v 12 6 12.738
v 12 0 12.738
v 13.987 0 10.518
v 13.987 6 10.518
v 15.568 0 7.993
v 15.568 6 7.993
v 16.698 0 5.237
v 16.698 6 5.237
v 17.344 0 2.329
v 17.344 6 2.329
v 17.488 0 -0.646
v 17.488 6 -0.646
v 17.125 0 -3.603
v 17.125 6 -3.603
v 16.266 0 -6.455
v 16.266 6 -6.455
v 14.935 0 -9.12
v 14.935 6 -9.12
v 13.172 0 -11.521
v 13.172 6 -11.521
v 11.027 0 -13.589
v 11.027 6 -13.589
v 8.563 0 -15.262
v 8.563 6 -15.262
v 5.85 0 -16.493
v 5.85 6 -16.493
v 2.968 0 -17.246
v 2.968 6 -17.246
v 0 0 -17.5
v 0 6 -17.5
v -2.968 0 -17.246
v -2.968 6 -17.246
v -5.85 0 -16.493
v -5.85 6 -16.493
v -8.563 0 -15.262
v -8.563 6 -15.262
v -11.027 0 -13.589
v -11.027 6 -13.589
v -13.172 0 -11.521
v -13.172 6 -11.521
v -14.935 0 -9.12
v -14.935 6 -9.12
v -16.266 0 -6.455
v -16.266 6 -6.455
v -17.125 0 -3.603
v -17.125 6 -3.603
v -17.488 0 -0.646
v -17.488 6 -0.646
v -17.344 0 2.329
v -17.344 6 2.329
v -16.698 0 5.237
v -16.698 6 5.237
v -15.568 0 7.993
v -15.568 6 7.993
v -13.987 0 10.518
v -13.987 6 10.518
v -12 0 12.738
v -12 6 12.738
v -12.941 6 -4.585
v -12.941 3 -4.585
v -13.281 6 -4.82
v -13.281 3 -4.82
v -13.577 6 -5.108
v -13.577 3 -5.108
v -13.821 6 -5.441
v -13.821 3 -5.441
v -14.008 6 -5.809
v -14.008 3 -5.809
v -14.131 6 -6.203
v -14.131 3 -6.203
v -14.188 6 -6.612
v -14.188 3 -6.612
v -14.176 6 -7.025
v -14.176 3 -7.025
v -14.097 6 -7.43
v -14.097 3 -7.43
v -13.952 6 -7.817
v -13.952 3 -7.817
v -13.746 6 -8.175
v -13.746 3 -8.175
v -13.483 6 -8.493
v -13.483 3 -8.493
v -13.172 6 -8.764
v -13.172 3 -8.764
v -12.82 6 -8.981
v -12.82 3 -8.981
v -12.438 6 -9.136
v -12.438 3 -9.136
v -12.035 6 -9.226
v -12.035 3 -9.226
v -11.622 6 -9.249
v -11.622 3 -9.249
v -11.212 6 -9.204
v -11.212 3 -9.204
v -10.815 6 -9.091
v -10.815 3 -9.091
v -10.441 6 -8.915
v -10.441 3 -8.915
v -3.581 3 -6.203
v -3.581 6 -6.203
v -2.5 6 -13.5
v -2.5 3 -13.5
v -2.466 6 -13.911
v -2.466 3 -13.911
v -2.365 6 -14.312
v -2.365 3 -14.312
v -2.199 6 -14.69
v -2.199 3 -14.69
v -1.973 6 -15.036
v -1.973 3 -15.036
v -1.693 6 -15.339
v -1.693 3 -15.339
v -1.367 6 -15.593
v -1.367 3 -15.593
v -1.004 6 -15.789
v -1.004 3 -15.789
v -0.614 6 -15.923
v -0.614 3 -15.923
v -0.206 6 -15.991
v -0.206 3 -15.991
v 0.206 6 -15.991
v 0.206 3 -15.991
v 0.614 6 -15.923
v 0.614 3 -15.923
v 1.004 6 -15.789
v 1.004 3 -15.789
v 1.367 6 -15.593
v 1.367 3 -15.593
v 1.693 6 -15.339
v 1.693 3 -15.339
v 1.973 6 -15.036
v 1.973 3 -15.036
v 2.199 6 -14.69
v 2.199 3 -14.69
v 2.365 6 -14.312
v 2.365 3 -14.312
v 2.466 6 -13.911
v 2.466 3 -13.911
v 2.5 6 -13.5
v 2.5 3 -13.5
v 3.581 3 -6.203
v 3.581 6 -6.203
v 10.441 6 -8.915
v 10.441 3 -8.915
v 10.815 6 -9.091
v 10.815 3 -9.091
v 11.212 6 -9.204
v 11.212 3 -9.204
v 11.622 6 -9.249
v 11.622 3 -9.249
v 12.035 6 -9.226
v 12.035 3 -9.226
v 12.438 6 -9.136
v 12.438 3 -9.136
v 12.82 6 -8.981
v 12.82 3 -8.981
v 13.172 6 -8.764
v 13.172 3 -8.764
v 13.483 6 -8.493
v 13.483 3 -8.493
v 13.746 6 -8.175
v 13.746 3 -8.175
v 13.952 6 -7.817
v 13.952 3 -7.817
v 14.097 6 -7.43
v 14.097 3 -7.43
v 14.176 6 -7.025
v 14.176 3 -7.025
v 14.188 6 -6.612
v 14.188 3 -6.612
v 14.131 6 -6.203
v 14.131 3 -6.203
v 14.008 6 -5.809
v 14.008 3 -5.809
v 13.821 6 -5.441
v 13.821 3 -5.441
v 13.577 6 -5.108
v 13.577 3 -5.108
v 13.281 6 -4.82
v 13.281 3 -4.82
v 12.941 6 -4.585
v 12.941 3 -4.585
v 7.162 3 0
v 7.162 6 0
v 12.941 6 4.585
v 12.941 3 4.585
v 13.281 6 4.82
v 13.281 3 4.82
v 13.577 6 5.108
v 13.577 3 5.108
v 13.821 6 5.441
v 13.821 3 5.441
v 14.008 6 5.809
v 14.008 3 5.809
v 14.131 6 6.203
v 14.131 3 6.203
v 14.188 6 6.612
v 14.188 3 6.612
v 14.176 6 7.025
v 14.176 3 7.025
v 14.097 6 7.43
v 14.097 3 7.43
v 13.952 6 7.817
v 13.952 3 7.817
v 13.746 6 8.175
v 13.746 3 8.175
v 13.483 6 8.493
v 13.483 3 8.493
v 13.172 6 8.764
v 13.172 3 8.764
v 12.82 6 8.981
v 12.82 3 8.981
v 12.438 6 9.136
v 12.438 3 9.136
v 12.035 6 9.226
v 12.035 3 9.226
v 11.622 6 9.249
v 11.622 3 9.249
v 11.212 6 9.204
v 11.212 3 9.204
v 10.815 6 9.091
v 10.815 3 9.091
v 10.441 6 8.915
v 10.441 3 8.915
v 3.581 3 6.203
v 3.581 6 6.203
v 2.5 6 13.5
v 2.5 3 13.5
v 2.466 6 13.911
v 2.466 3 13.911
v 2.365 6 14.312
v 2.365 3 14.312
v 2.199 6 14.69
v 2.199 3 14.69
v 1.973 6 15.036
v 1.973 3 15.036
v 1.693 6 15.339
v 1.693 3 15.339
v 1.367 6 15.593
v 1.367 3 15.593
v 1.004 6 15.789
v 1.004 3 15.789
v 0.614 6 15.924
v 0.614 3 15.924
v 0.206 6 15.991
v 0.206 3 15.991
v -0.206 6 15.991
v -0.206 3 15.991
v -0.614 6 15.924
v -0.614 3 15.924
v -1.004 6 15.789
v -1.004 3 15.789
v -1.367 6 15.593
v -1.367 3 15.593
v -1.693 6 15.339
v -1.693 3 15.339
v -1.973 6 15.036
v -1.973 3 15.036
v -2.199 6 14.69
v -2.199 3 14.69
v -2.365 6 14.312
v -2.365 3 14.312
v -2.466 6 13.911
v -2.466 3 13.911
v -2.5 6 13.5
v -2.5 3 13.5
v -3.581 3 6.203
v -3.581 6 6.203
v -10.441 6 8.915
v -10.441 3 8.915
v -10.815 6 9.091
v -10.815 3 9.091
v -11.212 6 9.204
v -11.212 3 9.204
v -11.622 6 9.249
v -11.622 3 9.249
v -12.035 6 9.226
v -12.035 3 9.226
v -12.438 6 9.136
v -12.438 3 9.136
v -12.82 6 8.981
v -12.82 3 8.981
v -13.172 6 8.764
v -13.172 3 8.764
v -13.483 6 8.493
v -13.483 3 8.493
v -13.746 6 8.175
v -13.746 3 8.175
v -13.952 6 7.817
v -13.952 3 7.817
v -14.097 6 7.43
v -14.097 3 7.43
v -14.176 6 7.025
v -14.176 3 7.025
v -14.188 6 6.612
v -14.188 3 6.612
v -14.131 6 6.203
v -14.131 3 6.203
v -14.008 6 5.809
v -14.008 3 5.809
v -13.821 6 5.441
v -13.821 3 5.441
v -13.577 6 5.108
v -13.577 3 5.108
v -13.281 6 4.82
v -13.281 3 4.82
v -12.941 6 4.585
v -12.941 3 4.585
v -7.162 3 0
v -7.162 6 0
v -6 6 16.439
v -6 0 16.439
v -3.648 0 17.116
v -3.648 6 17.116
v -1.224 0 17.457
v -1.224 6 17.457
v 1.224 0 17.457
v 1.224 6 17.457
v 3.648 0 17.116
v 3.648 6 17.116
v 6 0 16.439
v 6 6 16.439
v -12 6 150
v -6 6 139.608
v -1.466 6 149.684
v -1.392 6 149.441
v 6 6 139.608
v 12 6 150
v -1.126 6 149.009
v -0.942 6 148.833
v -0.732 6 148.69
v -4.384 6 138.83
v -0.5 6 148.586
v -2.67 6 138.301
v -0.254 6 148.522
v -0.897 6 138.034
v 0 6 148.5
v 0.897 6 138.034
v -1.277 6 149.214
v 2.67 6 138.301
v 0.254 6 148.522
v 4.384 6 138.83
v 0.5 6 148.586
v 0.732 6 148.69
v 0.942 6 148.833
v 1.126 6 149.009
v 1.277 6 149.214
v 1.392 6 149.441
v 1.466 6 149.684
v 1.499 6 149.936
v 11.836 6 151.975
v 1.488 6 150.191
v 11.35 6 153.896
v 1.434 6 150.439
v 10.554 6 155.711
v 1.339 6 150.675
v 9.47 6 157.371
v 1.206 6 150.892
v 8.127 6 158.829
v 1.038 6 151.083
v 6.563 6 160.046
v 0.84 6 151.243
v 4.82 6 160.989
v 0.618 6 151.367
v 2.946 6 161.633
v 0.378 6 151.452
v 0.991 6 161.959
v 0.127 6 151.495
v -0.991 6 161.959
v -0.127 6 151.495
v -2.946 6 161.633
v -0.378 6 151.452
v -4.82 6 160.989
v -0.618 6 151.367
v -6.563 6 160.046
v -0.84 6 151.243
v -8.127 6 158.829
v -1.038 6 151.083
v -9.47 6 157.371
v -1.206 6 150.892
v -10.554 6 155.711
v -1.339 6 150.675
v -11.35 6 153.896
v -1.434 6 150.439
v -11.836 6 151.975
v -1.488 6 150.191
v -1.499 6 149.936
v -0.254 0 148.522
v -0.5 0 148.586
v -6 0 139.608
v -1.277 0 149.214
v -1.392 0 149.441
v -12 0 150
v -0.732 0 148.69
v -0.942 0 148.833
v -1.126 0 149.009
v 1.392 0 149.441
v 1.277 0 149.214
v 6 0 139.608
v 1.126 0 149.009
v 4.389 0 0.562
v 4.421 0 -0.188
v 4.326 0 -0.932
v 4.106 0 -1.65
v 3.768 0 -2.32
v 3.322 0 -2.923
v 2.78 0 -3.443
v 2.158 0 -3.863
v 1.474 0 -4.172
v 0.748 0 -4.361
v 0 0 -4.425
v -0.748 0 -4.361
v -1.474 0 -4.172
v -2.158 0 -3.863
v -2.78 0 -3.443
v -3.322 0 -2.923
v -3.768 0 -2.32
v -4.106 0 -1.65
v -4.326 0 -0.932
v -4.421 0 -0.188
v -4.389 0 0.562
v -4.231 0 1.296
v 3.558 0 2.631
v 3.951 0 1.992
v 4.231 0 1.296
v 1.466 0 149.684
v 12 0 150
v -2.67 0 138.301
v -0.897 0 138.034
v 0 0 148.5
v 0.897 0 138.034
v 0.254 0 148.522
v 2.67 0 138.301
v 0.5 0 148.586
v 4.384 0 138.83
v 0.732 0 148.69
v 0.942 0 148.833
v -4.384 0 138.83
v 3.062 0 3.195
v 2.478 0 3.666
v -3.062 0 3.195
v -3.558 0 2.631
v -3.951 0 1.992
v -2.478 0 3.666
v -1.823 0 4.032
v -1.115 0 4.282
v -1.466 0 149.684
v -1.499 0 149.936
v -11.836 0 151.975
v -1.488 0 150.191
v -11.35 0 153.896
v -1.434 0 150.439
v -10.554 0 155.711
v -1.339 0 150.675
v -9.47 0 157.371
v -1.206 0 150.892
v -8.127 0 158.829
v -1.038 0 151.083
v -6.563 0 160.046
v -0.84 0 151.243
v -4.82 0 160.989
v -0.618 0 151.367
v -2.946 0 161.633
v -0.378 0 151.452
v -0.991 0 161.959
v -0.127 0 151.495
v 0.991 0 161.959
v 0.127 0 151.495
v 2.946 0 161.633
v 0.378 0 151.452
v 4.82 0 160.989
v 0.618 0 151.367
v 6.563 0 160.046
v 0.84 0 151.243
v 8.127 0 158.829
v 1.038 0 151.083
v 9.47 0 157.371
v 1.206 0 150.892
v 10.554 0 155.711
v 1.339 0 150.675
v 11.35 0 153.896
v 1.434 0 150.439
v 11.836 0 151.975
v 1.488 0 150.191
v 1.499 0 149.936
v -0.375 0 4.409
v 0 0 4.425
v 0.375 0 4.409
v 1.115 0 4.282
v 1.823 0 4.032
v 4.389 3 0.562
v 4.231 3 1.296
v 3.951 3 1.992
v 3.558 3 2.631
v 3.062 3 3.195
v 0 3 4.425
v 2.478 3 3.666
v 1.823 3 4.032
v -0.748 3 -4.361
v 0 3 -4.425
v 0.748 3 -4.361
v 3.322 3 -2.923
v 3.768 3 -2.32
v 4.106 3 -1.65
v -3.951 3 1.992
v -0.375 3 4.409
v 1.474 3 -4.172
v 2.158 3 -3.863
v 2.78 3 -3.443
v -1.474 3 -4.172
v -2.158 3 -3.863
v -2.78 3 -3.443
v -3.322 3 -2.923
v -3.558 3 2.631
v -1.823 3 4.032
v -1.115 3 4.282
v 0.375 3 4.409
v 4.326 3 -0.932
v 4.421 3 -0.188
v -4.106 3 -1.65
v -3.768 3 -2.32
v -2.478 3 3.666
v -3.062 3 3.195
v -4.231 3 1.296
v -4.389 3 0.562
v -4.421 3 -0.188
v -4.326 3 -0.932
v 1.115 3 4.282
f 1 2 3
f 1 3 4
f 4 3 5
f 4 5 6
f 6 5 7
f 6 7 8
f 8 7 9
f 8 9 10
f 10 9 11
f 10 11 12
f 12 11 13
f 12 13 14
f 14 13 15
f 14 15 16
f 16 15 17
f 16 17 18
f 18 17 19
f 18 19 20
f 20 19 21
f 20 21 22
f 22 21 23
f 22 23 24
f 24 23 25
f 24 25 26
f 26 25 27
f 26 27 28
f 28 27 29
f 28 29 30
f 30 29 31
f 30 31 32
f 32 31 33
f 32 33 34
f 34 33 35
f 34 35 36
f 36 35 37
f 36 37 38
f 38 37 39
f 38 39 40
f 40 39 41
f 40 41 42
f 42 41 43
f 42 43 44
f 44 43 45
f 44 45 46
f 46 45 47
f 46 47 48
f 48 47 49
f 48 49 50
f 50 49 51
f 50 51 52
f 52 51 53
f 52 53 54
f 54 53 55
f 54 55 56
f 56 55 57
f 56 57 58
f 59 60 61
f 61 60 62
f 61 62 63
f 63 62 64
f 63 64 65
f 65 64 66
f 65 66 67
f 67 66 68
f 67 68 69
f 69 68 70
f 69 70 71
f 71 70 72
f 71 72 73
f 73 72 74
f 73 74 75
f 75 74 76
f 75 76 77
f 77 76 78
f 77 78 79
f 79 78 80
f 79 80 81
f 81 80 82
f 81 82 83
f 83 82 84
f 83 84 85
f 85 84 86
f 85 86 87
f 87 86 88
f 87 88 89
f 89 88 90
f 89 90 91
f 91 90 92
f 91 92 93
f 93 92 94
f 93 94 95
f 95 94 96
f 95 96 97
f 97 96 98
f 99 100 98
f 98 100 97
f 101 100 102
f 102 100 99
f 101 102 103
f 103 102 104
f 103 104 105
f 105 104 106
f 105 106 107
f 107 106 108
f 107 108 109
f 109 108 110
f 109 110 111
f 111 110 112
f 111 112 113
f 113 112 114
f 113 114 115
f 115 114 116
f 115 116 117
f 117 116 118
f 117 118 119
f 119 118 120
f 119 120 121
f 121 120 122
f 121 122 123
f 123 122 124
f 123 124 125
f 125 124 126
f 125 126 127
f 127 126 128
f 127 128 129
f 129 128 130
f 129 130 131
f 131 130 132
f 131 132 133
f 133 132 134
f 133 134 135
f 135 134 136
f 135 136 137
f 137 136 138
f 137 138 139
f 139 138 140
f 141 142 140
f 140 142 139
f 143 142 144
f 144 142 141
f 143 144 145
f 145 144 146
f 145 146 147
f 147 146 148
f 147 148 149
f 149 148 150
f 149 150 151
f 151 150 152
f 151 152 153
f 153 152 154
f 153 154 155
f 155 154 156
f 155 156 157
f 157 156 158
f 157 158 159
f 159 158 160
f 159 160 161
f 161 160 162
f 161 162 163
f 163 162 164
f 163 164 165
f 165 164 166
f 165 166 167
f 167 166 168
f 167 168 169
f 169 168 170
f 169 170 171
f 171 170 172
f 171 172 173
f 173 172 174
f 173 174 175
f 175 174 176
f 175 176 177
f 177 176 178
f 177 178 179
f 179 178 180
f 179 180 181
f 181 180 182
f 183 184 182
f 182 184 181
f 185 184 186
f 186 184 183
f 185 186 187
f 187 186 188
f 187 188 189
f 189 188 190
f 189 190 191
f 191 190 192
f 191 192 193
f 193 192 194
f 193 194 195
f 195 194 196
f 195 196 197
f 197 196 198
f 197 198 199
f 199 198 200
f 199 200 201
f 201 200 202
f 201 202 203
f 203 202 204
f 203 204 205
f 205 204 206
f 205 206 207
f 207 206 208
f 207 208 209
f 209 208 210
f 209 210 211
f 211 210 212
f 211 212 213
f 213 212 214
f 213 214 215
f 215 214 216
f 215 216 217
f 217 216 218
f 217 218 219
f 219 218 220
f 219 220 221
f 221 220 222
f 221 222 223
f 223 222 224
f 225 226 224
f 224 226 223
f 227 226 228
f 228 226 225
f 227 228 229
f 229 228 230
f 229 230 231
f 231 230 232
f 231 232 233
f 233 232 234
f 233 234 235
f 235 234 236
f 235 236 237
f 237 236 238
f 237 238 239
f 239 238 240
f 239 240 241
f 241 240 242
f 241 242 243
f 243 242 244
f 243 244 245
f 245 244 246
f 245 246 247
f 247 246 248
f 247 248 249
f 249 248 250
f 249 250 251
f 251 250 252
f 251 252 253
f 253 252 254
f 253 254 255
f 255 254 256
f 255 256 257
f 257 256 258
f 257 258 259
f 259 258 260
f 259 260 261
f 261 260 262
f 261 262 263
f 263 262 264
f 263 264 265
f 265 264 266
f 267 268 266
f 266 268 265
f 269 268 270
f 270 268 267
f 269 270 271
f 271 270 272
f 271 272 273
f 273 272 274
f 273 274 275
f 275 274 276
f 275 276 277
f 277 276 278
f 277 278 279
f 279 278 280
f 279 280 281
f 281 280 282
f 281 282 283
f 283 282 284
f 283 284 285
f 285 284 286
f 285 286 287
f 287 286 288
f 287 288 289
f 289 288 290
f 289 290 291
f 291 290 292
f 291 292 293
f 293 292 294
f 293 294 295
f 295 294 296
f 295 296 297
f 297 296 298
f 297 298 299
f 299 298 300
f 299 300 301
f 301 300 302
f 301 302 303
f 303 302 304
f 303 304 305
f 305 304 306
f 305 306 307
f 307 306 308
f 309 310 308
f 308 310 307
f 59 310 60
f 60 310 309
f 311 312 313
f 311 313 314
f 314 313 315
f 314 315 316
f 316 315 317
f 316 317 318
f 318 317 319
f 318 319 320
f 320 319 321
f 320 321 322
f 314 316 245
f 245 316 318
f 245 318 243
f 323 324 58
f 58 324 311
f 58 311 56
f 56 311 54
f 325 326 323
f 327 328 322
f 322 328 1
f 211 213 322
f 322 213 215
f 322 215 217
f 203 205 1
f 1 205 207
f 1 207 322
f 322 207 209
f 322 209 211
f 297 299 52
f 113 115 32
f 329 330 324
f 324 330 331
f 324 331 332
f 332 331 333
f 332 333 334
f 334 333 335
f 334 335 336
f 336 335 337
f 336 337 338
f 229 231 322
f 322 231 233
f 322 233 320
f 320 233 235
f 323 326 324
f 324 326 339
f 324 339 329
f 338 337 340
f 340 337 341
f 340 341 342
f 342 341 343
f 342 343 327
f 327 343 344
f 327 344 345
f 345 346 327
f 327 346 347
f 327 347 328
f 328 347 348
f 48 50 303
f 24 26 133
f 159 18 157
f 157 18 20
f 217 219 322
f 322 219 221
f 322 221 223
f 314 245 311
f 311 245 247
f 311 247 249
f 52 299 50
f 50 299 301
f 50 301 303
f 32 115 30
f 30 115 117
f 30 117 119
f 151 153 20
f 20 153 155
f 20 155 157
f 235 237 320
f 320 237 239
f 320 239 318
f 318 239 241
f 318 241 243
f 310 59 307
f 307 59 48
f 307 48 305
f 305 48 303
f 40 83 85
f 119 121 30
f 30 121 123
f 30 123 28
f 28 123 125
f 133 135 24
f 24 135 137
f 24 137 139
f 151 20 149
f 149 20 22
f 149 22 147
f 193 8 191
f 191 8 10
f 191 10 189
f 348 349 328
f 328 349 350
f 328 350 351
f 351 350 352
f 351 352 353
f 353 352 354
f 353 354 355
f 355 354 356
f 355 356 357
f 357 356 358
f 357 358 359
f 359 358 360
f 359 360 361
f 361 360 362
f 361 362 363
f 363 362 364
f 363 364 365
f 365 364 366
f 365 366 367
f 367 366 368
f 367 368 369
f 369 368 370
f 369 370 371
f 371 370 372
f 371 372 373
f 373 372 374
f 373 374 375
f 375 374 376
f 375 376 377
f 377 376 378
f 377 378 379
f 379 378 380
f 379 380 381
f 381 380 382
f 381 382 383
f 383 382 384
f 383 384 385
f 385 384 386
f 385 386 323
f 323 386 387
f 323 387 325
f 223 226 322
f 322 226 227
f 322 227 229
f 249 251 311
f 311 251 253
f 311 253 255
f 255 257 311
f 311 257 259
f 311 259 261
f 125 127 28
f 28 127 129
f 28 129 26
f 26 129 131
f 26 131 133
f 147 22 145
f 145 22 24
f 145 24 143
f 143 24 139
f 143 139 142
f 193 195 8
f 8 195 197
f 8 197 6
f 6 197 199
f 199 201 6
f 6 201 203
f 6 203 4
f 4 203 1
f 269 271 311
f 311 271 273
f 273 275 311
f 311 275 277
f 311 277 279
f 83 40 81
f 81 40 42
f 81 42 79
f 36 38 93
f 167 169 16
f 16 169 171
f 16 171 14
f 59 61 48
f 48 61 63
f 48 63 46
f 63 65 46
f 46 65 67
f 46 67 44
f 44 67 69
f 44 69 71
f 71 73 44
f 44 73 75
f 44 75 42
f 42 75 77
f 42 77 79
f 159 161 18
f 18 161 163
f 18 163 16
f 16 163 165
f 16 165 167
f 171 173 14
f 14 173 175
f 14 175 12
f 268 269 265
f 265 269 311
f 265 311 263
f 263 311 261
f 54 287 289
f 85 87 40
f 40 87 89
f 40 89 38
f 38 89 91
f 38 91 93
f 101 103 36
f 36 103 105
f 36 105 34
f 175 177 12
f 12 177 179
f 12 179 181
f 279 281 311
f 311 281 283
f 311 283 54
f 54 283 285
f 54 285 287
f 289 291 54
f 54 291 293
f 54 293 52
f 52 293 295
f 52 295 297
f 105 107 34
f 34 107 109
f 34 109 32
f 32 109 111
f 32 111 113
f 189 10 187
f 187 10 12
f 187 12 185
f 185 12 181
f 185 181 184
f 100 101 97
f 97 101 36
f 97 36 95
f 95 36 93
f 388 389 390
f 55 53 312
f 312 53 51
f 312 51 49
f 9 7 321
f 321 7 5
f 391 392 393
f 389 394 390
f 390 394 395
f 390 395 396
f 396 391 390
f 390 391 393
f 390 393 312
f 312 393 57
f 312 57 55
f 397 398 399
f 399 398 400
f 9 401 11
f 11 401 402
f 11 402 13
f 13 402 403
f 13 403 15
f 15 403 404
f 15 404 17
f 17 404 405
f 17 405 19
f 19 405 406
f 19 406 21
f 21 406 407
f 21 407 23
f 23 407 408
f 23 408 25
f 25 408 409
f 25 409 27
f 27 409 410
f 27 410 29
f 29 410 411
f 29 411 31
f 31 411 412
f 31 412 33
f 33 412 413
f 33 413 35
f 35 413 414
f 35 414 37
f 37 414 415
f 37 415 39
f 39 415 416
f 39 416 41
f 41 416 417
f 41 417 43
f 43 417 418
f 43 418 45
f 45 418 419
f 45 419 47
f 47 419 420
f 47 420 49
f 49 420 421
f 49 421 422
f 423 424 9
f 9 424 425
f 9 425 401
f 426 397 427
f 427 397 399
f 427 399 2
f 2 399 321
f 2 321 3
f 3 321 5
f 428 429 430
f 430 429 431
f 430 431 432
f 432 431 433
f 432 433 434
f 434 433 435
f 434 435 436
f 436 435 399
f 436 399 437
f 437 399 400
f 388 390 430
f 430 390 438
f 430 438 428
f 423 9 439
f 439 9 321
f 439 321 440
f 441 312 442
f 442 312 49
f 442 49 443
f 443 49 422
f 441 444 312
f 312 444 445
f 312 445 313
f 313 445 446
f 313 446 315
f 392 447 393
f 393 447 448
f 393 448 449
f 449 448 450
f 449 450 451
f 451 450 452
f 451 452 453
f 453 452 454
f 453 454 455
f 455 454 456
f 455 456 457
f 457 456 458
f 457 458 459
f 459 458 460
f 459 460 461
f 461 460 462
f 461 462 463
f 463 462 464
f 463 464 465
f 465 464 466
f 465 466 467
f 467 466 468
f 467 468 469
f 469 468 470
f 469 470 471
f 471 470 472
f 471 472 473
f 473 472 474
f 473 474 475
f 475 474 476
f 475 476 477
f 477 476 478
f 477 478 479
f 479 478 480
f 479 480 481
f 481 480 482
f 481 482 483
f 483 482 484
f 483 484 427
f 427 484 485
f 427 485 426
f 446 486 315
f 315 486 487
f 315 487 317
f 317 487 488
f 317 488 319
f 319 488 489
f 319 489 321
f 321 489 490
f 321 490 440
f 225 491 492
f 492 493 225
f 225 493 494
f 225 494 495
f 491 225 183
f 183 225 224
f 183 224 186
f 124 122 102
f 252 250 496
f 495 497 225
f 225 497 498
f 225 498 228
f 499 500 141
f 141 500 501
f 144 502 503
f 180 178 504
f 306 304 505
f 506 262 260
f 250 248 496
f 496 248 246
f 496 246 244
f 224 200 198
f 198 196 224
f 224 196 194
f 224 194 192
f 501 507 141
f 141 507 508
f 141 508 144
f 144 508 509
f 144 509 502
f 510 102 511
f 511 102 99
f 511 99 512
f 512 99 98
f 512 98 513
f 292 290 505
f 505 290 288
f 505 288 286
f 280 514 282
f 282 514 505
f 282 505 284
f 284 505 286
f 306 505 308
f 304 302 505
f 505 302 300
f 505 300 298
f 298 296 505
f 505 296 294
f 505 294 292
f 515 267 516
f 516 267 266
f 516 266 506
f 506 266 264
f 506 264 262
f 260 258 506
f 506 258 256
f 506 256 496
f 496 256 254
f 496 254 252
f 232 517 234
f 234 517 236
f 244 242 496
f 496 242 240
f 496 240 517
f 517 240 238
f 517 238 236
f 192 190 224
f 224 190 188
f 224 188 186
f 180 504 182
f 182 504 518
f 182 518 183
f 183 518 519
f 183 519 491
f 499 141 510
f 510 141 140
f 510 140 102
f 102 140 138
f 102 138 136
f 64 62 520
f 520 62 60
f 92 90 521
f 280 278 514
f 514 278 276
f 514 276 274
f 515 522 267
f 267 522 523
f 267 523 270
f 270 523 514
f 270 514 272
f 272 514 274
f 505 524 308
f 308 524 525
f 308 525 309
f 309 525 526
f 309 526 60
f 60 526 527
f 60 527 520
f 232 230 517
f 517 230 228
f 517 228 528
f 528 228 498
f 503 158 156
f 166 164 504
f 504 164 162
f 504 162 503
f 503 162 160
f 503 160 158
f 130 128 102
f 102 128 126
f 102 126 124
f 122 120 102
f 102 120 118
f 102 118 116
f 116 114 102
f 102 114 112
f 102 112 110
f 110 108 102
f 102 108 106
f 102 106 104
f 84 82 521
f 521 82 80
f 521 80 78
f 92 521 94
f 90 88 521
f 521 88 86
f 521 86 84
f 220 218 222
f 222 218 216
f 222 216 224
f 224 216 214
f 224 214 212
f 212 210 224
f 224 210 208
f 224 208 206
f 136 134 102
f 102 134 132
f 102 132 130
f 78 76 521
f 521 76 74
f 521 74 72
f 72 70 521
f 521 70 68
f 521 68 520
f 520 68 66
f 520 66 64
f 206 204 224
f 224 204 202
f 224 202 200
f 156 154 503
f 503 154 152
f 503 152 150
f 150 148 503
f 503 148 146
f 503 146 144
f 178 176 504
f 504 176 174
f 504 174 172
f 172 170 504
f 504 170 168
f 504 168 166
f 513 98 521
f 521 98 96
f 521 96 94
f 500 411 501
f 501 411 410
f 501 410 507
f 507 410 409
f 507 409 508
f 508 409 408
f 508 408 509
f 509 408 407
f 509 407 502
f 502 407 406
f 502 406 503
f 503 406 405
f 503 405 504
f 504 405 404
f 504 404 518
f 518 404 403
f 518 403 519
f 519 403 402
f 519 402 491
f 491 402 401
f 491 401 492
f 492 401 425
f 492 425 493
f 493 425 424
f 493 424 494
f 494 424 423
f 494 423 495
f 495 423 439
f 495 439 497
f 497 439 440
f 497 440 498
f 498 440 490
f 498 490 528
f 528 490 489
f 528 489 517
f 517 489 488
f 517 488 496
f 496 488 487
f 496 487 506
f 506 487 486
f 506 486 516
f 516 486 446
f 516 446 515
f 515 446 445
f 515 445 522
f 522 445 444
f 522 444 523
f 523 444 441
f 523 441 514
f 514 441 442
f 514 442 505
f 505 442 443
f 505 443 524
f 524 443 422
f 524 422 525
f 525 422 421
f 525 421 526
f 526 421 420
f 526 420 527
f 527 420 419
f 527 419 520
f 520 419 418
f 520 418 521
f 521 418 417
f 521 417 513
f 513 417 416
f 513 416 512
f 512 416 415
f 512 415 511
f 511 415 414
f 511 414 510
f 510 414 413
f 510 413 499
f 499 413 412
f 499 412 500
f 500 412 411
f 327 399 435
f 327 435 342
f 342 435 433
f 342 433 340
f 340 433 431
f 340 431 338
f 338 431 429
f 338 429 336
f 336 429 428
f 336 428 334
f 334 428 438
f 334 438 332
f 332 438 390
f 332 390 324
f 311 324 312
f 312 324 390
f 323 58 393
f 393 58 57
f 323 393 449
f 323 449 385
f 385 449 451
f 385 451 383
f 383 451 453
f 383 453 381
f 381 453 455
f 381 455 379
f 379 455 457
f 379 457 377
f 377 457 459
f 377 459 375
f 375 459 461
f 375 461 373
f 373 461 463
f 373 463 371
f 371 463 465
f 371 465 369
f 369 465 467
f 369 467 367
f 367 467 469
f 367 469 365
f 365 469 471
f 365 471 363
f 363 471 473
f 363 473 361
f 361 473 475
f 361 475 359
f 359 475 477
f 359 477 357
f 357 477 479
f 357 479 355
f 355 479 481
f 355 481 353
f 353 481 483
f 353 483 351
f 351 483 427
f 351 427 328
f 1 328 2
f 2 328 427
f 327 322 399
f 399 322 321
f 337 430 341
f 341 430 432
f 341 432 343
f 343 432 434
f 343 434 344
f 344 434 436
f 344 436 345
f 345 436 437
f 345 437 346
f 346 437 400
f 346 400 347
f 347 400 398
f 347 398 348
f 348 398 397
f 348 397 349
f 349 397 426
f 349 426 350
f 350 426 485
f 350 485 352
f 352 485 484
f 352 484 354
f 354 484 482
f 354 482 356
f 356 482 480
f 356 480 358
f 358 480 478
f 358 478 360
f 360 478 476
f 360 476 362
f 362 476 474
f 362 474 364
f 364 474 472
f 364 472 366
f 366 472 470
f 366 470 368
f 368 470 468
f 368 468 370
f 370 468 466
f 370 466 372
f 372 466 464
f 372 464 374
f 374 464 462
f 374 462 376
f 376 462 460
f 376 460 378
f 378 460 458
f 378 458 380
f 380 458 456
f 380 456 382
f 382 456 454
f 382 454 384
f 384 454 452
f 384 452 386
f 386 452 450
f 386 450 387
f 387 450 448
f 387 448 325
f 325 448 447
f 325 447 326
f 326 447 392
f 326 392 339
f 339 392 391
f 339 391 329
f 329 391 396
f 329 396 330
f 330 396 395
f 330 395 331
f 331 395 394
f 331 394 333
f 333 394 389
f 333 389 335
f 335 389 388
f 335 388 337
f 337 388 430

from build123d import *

# Parameters (mm, degrees)
SKETCH1_R           = 17.5
BOSS_EXTRUDE3_DEPTH = 6
BOSS_EXTRUDE5_DEPTH = 3
SKETCH2_R           = 1.5
BOSS_EXTRUDE6_DEPTH = 6


with BuildPart() as part:
    # Sketch1 → Boss-Extrude3 (new body)
    with BuildSketch(Plane(origin=(0, 0, 0), x_dir=(1, 0, 0), z_dir=(0, 1, 0))):
        with Locations(Location((0, 0, 0), (0, 0, 270))):
            Circle(SKETCH1_R)
        with BuildLine():
            ThreePointArc((-2.5, 13.5), (-1.767766953, 15.267766953), (0, 16))
            ThreePointArc((0, 16), (1.767766953, 15.267766953), (2.5, 13.5))
            Line((2.5, 13.5), (3.581091494, 6.202632414))
            Line((3.581091494, 6.202632414), (10.441342951, 8.915063509))
            ThreePointArc((10.441342951, 8.915063509), (12.338390564, 9.164814566), (13.856406461, 8))
            ThreePointArc((13.856406461, 8), (14.106157517, 7.397047613), (14.191342951, 6.75))
            ThreePointArc((14.191342951, 6.75), (13.856406461, 5.5), (12.941342951, 4.584936491))
            Line((12.941342951, 4.584936491), (7.162182988, 0))
            Line((7.162182988, 0), (12.941342951, -4.584936491))
            ThreePointArc((12.941342951, -4.584936491), (13.856406461, -5.5), (14.191342951, -6.75))
            ThreePointArc((14.191342951, -6.75), (14.106157517, -7.397047613), (13.856406461, -8))
            ThreePointArc((13.856406461, -8), (12.338390564, -9.164814566), (10.441342951, -8.915063509))
            Line((10.441342951, -8.915063509), (3.581091494, -6.202632414))
            Line((3.581091494, -6.202632414), (2.5, -13.5))
            ThreePointArc((2.5, -13.5), (1.767766953, -15.267766953), (0, -16))
            ThreePointArc((0, -16), (-1.767766953, -15.267766953), (-2.5, -13.5))
            Line((-2.5, -13.5), (-3.581091494, -6.202632414))
            Line((-3.581091494, -6.202632414), (-10.441342951, -8.915063509))
            ThreePointArc((-10.441342951, -8.915063509), (-12.338390564, -9.164814566), (-13.856406461, -8))
            ThreePointArc((-13.856406461, -8), (-14.106157517, -6.102952387), (-12.941342951, -4.584936491))
            Line((-12.941342951, -4.584936491), (-7.162182988, 0))
            Line((-7.162182988, 0), (-12.941342951, 4.584936491))
            ThreePointArc((-12.941342951, 4.584936491), (-14.106157517, 6.102952387), (-13.856406461, 8))
            ThreePointArc((-13.856406461, 8), (-12.338390564, 9.164814566), (-10.441342951, 8.915063509))
            Line((-10.441342951, 8.915063509), (-3.581091494, 6.202632414))
            Line((-3.581091494, 6.202632414), (-2.5, 13.5))
        make_face(mode=Mode.SUBTRACT)
    extrude(amount=BOSS_EXTRUDE3_DEPTH)

    # Sketch1<11> → Boss-Extrude5 (add)
    with BuildSketch(Plane(origin=(0, 0, 0), x_dir=(1, 0, 0), z_dir=(0, 1, 0))):
        with BuildLine():
            ThreePointArc((-9.191342951, 6.75), (-9.526279442, 8), (-10.441342951, 8.915063509))
            Line((-10.441342951, 8.915063509), (-11.691342951, 6.75))
            Line((-11.691342951, 6.75), (-9.526279442, 5.5))
            ThreePointArc((-9.526279442, 5.5), (-9.276528385, 6.102952387), (-9.191342951, 6.75))
        make_face()
        with BuildLine():
            Line((-11.691342951, 6.75), (-10.441342951, 8.915063509))
            ThreePointArc((-10.441342951, 8.915063509), (-12.338390564, 9.164814566), (-13.856406461, 8))
            Line((-13.856406461, 8), (-11.691342951, 6.75))
        make_face()
        with BuildLine():
            ThreePointArc((-12.941342951, 4.584936491), (-11.044295338, 4.335185434), (-9.526279442, 5.5))
            Line((-9.526279442, 5.5), (-11.691342951, 6.75))
            Line((-11.691342951, 6.75), (-12.941342951, 4.584936491))
        make_face()
        with BuildLine():
            Line((-12.941342951, 4.584936491), (-11.691342951, 6.75))
            Line((-11.691342951, 6.75), (-13.856406461, 8))
            ThreePointArc((-13.856406461, 8), (-14.106157517, 6.102952387), (-12.941342951, 4.584936491))
        make_face()
        with BuildLine():
            Line((-4.145427594, 2.393363738), (-3.581091494, 6.202632414))
            Line((-3.581091494, 6.202632414), (-10.441342951, 8.915063509))
            ThreePointArc((-10.441342951, 8.915063509), (-9.526279442, 8), (-9.191342951, 6.75))
            ThreePointArc((-9.191342951, 6.75), (-9.276528385, 6.102952387), (-9.526279442, 5.5))
            Line((-9.526279442, 5.5), (-4.145427594, 2.393363738))
        make_face()
        with BuildLine():
            Line((-7.162182988, 0), (-4.145427594, 2.393363738))
            Line((-4.145427594, 2.393363738), (-9.526279442, 5.5))
            ThreePointArc((-9.526279442, 5.5), (-11.044295338, 4.335185434), (-12.941342951, 4.584936491))
            Line((-12.941342951, 4.584936491), (-7.162182988, 0))
        make_face()
        Polygon((-2.25, 3.897114317), (0, 4.786727475), (-3.581091494, 6.202632414), (-4.145427594, 2.393363738), align=None)
        with BuildLine():
            Line((-3.832162412, 2.2125), (-4.145427594, 2.393363738))
            Line((-4.145427594, 2.393363738), (-4.5, 0))
            Line((-4.5, 0), (-4.145427594, -2.393363738))
            Line((-4.145427594, -2.393363738), (-3.832162412, -2.2125))
            ThreePointArc((-3.832162412, -2.2125), (-4.425, 0), (-3.832162412, 2.2125))
        make_face()
        with BuildLine():
            Line((0, 4.425), (0, 4.786727475))
            Line((0, 4.786727475), (-2.25, 3.897114317))
            Line((-2.25, 3.897114317), (-4.145427594, 2.393363738))
            Line((-4.145427594, 2.393363738), (-3.832162412, 2.2125))
            ThreePointArc((-3.832162412, 2.2125), (-2.2125, 3.832162412), (0, 4.425))
        make_face()
        Polygon((-4.5, 0), (-4.145427594, 2.393363738), (-7.162182988, 0), (-4.145427594, -2.393363738), align=None)
        with BuildLine():
            Line((-4.145427594, -2.393363738), (-7.162182988, 0))
            Line((-7.162182988, 0), (-12.941342951, -4.584936491))
            ThreePointArc((-12.941342951, -4.584936491), (-11.044295338, -4.335185434), (-9.526279442, -5.5))
            Line((-9.526279442, -5.5), (-4.145427594, -2.393363738))
        make_face()
        with BuildLine():
            ThreePointArc((-9.526279442, -5.5), (-11.044295338, -4.335185434), (-12.941342951, -4.584936491))
            Line((-12.941342951, -4.584936491), (-11.691342951, -6.75))
            Line((-11.691342951, -6.75), (-9.526279442, -5.5))
        make_face()
        with BuildLine():
            Line((-11.691342951, -6.75), (-12.941342951, -4.584936491))
            ThreePointArc((-12.941342951, -4.584936491), (-14.106157517, -6.102952387), (-13.856406461, -8))
            Line((-13.856406461, -8), (-11.691342951, -6.75))
        make_face()
        with BuildLine():
            ThreePointArc((-9.191342951, -6.75), (-9.276528385, -6.102952387), (-9.526279442, -5.5))
            Line((-9.526279442, -5.5), (-11.691342951, -6.75))
            Line((-11.691342951, -6.75), (-10.441342951, -8.915063509))
            ThreePointArc((-10.441342951, -8.915063509), (-9.526279442, -8), (-9.191342951, -6.75))
        make_face()
        with BuildLine():
            Line((-10.441342951, -8.915063509), (-11.691342951, -6.75))
            Line((-11.691342951, -6.75), (-13.856406461, -8))
            ThreePointArc((-13.856406461, -8), (-12.338390564, -9.164814566), (-10.441342951, -8.915063509))
        make_face()
        with BuildLine():
            Line((-3.581091494, -6.202632414), (-4.145427594, -2.393363738))
            Line((-4.145427594, -2.393363738), (-9.526279442, -5.5))
            ThreePointArc((-9.526279442, -5.5), (-9.276528385, -6.102952387), (-9.191342951, -6.75))
            ThreePointArc((-9.191342951, -6.75), (-9.526279442, -8), (-10.441342951, -8.915063509))
            Line((-10.441342951, -8.915063509), (-3.581091494, -6.202632414))
        make_face()
        with BuildLine():
            Line((0, -4.786727475), (0, -4.425))
            ThreePointArc((0, -4.425), (-2.2125, -3.832162412), (-3.832162412, -2.2125))
            Line((-3.832162412, -2.2125), (-4.145427594, -2.393363738))
            Line((-4.145427594, -2.393363738), (-2.25, -3.897114317))
            Line((-2.25, -3.897114317), (0, -4.786727475))
        make_face()
        Polygon((-2.25, -3.897114317), (-4.145427594, -2.393363738), (-3.581091494, -6.202632414), (0, -4.786727475), align=None)
        with BuildLine():
            Line((0, -11), (0, -4.786727475))
            Line((0, -4.786727475), (-3.581091494, -6.202632414))
            Line((-3.581091494, -6.202632414), (-2.5, -13.5))
            ThreePointArc((-2.5, -13.5), (-1.767766953, -11.732233047), (0, -11))
        make_face()
        with BuildLine():
            Line((3.581091494, -6.202632414), (0, -4.786727475))
            Line((0, -4.786727475), (0, -11))
            ThreePointArc((0, -11), (1.767766953, -11.732233047), (2.5, -13.5))
            Line((2.5, -13.5), (3.581091494, -6.202632414))
        make_face()
        with BuildLine():
            Line((4.145427594, -2.393363738), (3.832162412, -2.2125))
            ThreePointArc((3.832162412, -2.2125), (2.2125, -3.832162412), (0, -4.425))
            Line((0, -4.425), (0, -4.786727475))
            Line((0, -4.786727475), (2.25, -3.897114317))
            Line((2.25, -3.897114317), (4.145427594, -2.393363738))
        make_face()
        Polygon((3.581091494, -6.202632414), (4.145427594, -2.393363738), (2.25, -3.897114317), (0, -4.786727475), align=None)
        with BuildLine():
            Line((0, -13.5), (0, -11))
            ThreePointArc((0, -11), (-1.767766953, -11.732233047), (-2.5, -13.5))
            Line((-2.5, -13.5), (0, -13.5))
        make_face()
        with BuildLine():
            Line((0, -13.5), (-2.5, -13.5))
            ThreePointArc((-2.5, -13.5), (-1.767766953, -15.267766953), (0, -16))
            Line((0, -16), (0, -13.5))
        make_face()
        with BuildLine():
            ThreePointArc((2.5, -13.5), (1.767766953, -11.732233047), (0, -11))
            Line((0, -11), (0, -13.5))
            Line((0, -13.5), (2.5, -13.5))
        make_face()
        with BuildLine():
            ThreePointArc((0, -16), (1.767766953, -15.267766953), (2.5, -13.5))
            Line((2.5, -13.5), (0, -13.5))
            Line((0, -13.5), (0, -16))
        make_face()
        with BuildLine():
            Line((9.526279442, -5.5), (4.145427594, -2.393363738))
            Line((4.145427594, -2.393363738), (3.581091494, -6.202632414))
            Line((3.581091494, -6.202632414), (10.441342951, -8.915063509))
            ThreePointArc((10.441342951, -8.915063509), (9.276528385, -7.397047613), (9.526279442, -5.5))
        make_face()
        with BuildLine():
            Line((11.691342951, -6.75), (9.526279442, -5.5))
            ThreePointArc((9.526279442, -5.5), (9.276528385, -7.397047613), (10.441342951, -8.915063509))
            Line((10.441342951, -8.915063509), (11.691342951, -6.75))
        make_face()
        with BuildLine():
            Line((13.856406461, -8), (11.691342951, -6.75))
            Line((11.691342951, -6.75), (10.441342951, -8.915063509))
            ThreePointArc((10.441342951, -8.915063509), (12.338390564, -9.164814566), (13.856406461, -8))
        make_face()
        with BuildLine():
            ThreePointArc((14.191342951, -6.75), (13.856406461, -5.5), (12.941342951, -4.584936491))
            Line((12.941342951, -4.584936491), (11.691342951, -6.75))
            Line((11.691342951, -6.75), (13.856406461, -8))
            ThreePointArc((13.856406461, -8), (14.106157517, -7.397047613), (14.191342951, -6.75))
        make_face()
        with BuildLine():
            Line((11.691342951, -6.75), (12.941342951, -4.584936491))
            ThreePointArc((12.941342951, -4.584936491), (11.044295338, -4.335185434), (9.526279442, -5.5))
            Line((9.526279442, -5.5), (11.691342951, -6.75))
        make_face()
        with BuildLine():
            Line((12.941342951, -4.584936491), (7.162182988, 0))
            Line((7.162182988, 0), (4.145427594, -2.393363738))
            Line((4.145427594, -2.393363738), (9.526279442, -5.5))
            ThreePointArc((9.526279442, -5.5), (11.044295338, -4.335185434), (12.941342951, -4.584936491))
        make_face()
        with BuildLine():
            Line((4.5, 0), (4.145427594, 2.393363738))
            Line((4.145427594, 2.393363738), (3.832162412, 2.2125))
            ThreePointArc((3.832162412, 2.2125), (4.274221781, 1.145274275), (4.425, 0))
            ThreePointArc((4.425, 0), (4.274221781, -1.145274275), (3.832162412, -2.2125))
            Line((3.832162412, -2.2125), (4.145427594, -2.393363738))
            Line((4.145427594, -2.393363738), (4.5, 0))
        make_face()
        Polygon((7.162182988, 0), (4.145427594, 2.393363738), (4.5, 0), (4.145427594, -2.393363738), align=None)
        with BuildLine():
            Line((9.526279442, 5.5), (4.145427594, 2.393363738))
            Line((4.145427594, 2.393363738), (7.162182988, 0))
            Line((7.162182988, 0), (12.941342951, 4.584936491))
            ThreePointArc((12.941342951, 4.584936491), (11.044295338, 4.335185434), (9.526279442, 5.5))
        make_face()
        with BuildLine():
            Line((2.25, 3.897114317), (0, 4.786727475))
            Line((0, 4.786727475), (0, 4.425))
            ThreePointArc((0, 4.425), (2.2125, 3.832162412), (3.832162412, 2.2125))
            Line((3.832162412, 2.2125), (4.145427594, 2.393363738))
            Line((4.145427594, 2.393363738), (2.25, 3.897114317))
        make_face()
        Polygon((3.581091494, 6.202632414), (0, 4.786727475), (2.25, 3.897114317), (4.145427594, 2.393363738), align=None)
        with BuildLine():
            Line((10.441342951, 8.915063509), (3.581091494, 6.202632414))
            Line((3.581091494, 6.202632414), (4.145427594, 2.393363738))
            Line((4.145427594, 2.393363738), (9.526279442, 5.5))
            ThreePointArc((9.526279442, 5.5), (9.276528385, 7.397047613), (10.441342951, 8.915063509))
        make_face()
        with BuildLine():
            ThreePointArc((13.856406461, 8), (12.338390564, 9.164814566), (10.441342951, 8.915063509))
            Line((10.441342951, 8.915063509), (11.691342951, 6.75))
            Line((11.691342951, 6.75), (13.856406461, 8))
        make_face()
        with BuildLine():
            Line((11.691342951, 6.75), (10.441342951, 8.915063509))
            ThreePointArc((10.441342951, 8.915063509), (9.276528385, 7.397047613), (9.526279442, 5.5))
            Line((9.526279442, 5.5), (11.691342951, 6.75))
        make_face()
        with BuildLine():
            Line((11.691342951, 6.75), (9.526279442, 5.5))
            ThreePointArc((9.526279442, 5.5), (11.044295338, 4.335185434), (12.941342951, 4.584936491))
            Line((12.941342951, 4.584936491), (11.691342951, 6.75))
        make_face()
        with BuildLine():
            Line((13.856406461, 8), (11.691342951, 6.75))
            Line((11.691342951, 6.75), (12.941342951, 4.584936491))
            ThreePointArc((12.941342951, 4.584936491), (13.856406461, 5.5), (14.191342951, 6.75))
            ThreePointArc((14.191342951, 6.75), (14.106157517, 7.397047613), (13.856406461, 8))
        make_face()
        with BuildLine():
            ThreePointArc((2.5, 13.5), (1.767766953, 11.732233047), (0, 11))
            Line((0, 11), (0, 4.786727475))
            Line((0, 4.786727475), (3.581091494, 6.202632414))
            Line((3.581091494, 6.202632414), (2.5, 13.5))
        make_face()
        with BuildLine():
            Line((0, 4.786727475), (0, 11))
            ThreePointArc((0, 11), (-1.767766953, 11.732233047), (-2.5, 13.5))
            Line((-2.5, 13.5), (-3.581091494, 6.202632414))
            Line((-3.581091494, 6.202632414), (0, 4.786727475))
        make_face()
        with BuildLine():
            Line((-2.5, 13.5), (0, 13.5))
            Line((0, 13.5), (0, 16))
            ThreePointArc((0, 16), (-1.767766953, 15.267766953), (-2.5, 13.5))
        make_face()
        with BuildLine():
            Line((0, 11), (0, 13.5))
            Line((0, 13.5), (-2.5, 13.5))
            ThreePointArc((-2.5, 13.5), (-1.767766953, 11.732233047), (0, 11))
        make_face()
        with BuildLine():
            Line((2.5, 13.5), (0, 13.5))
            Line((0, 13.5), (0, 11))
            ThreePointArc((0, 11), (1.767766953, 11.732233047), (2.5, 13.5))
        make_face()
        with BuildLine():
            Line((0, 16), (0, 13.5))
            Line((0, 13.5), (2.5, 13.5))
            ThreePointArc((2.5, 13.5), (1.767766953, 15.267766953), (0, 16))
        make_face()
    extrude(amount=BOSS_EXTRUDE5_DEPTH)

    # Sketch2 → Boss-Extrude6 (add)
    # profile 1 of 5: a face of its own
    with BuildSketch(Plane.XZ):
        with BuildLine():
            ThreePointArc((6, 16.439282223), (9.188327116, 14.893778729), (12, 12.737739203))
            Line((12, 12.737739203), (12, 150))
            ThreePointArc((12, 150), (10.392304845, 144), (6, 139.607695155))
            Line((6, 139.607695155), (6, 16.439282223))
        make_face()
    # profile 2 of 5: a face of its own
    with BuildSketch(Plane.XZ):
        with BuildLine():
            Line((-12, 150), (-12, 12.737739203))
            ThreePointArc((-12, 12.737739203), (-9.188327116, 14.893778729), (-6, 16.439282223))
            Line((-6, 16.439282223), (-6, 139.607695155))
            ThreePointArc((-6, 139.607695155), (-10.392304845, 144), (-12, 150))
        make_face()
    # profile 3 of 5: a face of its own
    with BuildSketch(Plane.XZ):
        with BuildLine():
            ThreePointArc((12, 150), (0, 162), (-12, 150))
            Line((-12, 150), (-6, 150))
            Line((-6, 150), (-6, 139.607695155))
            ThreePointArc((-6, 139.607695155), (0, 138), (6, 139.607695155))
            Line((6, 139.607695155), (6, 150))
            Line((6, 150), (12, 150))
        make_face()
        with Locations(Location((0, 150, 0), (0, 0, 270))):
            Circle(SKETCH2_R, mode=Mode.SUBTRACT)
    # profile 4 of 5: a face of its own
    with BuildSketch(Plane.XZ):
        with BuildLine():
            ThreePointArc((6, 139.607695155), (10.392304845, 144), (12, 150))
            Line((12, 150), (6, 150))
            Line((6, 150), (6, 139.607695155))
        make_face()
    # profile 5 of 5: a face of its own
    with BuildSketch(Plane.XZ):
        with BuildLine():
            Line((-6, 150), (-12, 150))
            ThreePointArc((-12, 150), (-10.392304845, 144), (-6, 139.607695155))
            Line((-6, 139.607695155), (-6, 150))
        make_face()
    extrude(amount=-BOSS_EXTRUDE6_DEPTH)


solid = part.part
